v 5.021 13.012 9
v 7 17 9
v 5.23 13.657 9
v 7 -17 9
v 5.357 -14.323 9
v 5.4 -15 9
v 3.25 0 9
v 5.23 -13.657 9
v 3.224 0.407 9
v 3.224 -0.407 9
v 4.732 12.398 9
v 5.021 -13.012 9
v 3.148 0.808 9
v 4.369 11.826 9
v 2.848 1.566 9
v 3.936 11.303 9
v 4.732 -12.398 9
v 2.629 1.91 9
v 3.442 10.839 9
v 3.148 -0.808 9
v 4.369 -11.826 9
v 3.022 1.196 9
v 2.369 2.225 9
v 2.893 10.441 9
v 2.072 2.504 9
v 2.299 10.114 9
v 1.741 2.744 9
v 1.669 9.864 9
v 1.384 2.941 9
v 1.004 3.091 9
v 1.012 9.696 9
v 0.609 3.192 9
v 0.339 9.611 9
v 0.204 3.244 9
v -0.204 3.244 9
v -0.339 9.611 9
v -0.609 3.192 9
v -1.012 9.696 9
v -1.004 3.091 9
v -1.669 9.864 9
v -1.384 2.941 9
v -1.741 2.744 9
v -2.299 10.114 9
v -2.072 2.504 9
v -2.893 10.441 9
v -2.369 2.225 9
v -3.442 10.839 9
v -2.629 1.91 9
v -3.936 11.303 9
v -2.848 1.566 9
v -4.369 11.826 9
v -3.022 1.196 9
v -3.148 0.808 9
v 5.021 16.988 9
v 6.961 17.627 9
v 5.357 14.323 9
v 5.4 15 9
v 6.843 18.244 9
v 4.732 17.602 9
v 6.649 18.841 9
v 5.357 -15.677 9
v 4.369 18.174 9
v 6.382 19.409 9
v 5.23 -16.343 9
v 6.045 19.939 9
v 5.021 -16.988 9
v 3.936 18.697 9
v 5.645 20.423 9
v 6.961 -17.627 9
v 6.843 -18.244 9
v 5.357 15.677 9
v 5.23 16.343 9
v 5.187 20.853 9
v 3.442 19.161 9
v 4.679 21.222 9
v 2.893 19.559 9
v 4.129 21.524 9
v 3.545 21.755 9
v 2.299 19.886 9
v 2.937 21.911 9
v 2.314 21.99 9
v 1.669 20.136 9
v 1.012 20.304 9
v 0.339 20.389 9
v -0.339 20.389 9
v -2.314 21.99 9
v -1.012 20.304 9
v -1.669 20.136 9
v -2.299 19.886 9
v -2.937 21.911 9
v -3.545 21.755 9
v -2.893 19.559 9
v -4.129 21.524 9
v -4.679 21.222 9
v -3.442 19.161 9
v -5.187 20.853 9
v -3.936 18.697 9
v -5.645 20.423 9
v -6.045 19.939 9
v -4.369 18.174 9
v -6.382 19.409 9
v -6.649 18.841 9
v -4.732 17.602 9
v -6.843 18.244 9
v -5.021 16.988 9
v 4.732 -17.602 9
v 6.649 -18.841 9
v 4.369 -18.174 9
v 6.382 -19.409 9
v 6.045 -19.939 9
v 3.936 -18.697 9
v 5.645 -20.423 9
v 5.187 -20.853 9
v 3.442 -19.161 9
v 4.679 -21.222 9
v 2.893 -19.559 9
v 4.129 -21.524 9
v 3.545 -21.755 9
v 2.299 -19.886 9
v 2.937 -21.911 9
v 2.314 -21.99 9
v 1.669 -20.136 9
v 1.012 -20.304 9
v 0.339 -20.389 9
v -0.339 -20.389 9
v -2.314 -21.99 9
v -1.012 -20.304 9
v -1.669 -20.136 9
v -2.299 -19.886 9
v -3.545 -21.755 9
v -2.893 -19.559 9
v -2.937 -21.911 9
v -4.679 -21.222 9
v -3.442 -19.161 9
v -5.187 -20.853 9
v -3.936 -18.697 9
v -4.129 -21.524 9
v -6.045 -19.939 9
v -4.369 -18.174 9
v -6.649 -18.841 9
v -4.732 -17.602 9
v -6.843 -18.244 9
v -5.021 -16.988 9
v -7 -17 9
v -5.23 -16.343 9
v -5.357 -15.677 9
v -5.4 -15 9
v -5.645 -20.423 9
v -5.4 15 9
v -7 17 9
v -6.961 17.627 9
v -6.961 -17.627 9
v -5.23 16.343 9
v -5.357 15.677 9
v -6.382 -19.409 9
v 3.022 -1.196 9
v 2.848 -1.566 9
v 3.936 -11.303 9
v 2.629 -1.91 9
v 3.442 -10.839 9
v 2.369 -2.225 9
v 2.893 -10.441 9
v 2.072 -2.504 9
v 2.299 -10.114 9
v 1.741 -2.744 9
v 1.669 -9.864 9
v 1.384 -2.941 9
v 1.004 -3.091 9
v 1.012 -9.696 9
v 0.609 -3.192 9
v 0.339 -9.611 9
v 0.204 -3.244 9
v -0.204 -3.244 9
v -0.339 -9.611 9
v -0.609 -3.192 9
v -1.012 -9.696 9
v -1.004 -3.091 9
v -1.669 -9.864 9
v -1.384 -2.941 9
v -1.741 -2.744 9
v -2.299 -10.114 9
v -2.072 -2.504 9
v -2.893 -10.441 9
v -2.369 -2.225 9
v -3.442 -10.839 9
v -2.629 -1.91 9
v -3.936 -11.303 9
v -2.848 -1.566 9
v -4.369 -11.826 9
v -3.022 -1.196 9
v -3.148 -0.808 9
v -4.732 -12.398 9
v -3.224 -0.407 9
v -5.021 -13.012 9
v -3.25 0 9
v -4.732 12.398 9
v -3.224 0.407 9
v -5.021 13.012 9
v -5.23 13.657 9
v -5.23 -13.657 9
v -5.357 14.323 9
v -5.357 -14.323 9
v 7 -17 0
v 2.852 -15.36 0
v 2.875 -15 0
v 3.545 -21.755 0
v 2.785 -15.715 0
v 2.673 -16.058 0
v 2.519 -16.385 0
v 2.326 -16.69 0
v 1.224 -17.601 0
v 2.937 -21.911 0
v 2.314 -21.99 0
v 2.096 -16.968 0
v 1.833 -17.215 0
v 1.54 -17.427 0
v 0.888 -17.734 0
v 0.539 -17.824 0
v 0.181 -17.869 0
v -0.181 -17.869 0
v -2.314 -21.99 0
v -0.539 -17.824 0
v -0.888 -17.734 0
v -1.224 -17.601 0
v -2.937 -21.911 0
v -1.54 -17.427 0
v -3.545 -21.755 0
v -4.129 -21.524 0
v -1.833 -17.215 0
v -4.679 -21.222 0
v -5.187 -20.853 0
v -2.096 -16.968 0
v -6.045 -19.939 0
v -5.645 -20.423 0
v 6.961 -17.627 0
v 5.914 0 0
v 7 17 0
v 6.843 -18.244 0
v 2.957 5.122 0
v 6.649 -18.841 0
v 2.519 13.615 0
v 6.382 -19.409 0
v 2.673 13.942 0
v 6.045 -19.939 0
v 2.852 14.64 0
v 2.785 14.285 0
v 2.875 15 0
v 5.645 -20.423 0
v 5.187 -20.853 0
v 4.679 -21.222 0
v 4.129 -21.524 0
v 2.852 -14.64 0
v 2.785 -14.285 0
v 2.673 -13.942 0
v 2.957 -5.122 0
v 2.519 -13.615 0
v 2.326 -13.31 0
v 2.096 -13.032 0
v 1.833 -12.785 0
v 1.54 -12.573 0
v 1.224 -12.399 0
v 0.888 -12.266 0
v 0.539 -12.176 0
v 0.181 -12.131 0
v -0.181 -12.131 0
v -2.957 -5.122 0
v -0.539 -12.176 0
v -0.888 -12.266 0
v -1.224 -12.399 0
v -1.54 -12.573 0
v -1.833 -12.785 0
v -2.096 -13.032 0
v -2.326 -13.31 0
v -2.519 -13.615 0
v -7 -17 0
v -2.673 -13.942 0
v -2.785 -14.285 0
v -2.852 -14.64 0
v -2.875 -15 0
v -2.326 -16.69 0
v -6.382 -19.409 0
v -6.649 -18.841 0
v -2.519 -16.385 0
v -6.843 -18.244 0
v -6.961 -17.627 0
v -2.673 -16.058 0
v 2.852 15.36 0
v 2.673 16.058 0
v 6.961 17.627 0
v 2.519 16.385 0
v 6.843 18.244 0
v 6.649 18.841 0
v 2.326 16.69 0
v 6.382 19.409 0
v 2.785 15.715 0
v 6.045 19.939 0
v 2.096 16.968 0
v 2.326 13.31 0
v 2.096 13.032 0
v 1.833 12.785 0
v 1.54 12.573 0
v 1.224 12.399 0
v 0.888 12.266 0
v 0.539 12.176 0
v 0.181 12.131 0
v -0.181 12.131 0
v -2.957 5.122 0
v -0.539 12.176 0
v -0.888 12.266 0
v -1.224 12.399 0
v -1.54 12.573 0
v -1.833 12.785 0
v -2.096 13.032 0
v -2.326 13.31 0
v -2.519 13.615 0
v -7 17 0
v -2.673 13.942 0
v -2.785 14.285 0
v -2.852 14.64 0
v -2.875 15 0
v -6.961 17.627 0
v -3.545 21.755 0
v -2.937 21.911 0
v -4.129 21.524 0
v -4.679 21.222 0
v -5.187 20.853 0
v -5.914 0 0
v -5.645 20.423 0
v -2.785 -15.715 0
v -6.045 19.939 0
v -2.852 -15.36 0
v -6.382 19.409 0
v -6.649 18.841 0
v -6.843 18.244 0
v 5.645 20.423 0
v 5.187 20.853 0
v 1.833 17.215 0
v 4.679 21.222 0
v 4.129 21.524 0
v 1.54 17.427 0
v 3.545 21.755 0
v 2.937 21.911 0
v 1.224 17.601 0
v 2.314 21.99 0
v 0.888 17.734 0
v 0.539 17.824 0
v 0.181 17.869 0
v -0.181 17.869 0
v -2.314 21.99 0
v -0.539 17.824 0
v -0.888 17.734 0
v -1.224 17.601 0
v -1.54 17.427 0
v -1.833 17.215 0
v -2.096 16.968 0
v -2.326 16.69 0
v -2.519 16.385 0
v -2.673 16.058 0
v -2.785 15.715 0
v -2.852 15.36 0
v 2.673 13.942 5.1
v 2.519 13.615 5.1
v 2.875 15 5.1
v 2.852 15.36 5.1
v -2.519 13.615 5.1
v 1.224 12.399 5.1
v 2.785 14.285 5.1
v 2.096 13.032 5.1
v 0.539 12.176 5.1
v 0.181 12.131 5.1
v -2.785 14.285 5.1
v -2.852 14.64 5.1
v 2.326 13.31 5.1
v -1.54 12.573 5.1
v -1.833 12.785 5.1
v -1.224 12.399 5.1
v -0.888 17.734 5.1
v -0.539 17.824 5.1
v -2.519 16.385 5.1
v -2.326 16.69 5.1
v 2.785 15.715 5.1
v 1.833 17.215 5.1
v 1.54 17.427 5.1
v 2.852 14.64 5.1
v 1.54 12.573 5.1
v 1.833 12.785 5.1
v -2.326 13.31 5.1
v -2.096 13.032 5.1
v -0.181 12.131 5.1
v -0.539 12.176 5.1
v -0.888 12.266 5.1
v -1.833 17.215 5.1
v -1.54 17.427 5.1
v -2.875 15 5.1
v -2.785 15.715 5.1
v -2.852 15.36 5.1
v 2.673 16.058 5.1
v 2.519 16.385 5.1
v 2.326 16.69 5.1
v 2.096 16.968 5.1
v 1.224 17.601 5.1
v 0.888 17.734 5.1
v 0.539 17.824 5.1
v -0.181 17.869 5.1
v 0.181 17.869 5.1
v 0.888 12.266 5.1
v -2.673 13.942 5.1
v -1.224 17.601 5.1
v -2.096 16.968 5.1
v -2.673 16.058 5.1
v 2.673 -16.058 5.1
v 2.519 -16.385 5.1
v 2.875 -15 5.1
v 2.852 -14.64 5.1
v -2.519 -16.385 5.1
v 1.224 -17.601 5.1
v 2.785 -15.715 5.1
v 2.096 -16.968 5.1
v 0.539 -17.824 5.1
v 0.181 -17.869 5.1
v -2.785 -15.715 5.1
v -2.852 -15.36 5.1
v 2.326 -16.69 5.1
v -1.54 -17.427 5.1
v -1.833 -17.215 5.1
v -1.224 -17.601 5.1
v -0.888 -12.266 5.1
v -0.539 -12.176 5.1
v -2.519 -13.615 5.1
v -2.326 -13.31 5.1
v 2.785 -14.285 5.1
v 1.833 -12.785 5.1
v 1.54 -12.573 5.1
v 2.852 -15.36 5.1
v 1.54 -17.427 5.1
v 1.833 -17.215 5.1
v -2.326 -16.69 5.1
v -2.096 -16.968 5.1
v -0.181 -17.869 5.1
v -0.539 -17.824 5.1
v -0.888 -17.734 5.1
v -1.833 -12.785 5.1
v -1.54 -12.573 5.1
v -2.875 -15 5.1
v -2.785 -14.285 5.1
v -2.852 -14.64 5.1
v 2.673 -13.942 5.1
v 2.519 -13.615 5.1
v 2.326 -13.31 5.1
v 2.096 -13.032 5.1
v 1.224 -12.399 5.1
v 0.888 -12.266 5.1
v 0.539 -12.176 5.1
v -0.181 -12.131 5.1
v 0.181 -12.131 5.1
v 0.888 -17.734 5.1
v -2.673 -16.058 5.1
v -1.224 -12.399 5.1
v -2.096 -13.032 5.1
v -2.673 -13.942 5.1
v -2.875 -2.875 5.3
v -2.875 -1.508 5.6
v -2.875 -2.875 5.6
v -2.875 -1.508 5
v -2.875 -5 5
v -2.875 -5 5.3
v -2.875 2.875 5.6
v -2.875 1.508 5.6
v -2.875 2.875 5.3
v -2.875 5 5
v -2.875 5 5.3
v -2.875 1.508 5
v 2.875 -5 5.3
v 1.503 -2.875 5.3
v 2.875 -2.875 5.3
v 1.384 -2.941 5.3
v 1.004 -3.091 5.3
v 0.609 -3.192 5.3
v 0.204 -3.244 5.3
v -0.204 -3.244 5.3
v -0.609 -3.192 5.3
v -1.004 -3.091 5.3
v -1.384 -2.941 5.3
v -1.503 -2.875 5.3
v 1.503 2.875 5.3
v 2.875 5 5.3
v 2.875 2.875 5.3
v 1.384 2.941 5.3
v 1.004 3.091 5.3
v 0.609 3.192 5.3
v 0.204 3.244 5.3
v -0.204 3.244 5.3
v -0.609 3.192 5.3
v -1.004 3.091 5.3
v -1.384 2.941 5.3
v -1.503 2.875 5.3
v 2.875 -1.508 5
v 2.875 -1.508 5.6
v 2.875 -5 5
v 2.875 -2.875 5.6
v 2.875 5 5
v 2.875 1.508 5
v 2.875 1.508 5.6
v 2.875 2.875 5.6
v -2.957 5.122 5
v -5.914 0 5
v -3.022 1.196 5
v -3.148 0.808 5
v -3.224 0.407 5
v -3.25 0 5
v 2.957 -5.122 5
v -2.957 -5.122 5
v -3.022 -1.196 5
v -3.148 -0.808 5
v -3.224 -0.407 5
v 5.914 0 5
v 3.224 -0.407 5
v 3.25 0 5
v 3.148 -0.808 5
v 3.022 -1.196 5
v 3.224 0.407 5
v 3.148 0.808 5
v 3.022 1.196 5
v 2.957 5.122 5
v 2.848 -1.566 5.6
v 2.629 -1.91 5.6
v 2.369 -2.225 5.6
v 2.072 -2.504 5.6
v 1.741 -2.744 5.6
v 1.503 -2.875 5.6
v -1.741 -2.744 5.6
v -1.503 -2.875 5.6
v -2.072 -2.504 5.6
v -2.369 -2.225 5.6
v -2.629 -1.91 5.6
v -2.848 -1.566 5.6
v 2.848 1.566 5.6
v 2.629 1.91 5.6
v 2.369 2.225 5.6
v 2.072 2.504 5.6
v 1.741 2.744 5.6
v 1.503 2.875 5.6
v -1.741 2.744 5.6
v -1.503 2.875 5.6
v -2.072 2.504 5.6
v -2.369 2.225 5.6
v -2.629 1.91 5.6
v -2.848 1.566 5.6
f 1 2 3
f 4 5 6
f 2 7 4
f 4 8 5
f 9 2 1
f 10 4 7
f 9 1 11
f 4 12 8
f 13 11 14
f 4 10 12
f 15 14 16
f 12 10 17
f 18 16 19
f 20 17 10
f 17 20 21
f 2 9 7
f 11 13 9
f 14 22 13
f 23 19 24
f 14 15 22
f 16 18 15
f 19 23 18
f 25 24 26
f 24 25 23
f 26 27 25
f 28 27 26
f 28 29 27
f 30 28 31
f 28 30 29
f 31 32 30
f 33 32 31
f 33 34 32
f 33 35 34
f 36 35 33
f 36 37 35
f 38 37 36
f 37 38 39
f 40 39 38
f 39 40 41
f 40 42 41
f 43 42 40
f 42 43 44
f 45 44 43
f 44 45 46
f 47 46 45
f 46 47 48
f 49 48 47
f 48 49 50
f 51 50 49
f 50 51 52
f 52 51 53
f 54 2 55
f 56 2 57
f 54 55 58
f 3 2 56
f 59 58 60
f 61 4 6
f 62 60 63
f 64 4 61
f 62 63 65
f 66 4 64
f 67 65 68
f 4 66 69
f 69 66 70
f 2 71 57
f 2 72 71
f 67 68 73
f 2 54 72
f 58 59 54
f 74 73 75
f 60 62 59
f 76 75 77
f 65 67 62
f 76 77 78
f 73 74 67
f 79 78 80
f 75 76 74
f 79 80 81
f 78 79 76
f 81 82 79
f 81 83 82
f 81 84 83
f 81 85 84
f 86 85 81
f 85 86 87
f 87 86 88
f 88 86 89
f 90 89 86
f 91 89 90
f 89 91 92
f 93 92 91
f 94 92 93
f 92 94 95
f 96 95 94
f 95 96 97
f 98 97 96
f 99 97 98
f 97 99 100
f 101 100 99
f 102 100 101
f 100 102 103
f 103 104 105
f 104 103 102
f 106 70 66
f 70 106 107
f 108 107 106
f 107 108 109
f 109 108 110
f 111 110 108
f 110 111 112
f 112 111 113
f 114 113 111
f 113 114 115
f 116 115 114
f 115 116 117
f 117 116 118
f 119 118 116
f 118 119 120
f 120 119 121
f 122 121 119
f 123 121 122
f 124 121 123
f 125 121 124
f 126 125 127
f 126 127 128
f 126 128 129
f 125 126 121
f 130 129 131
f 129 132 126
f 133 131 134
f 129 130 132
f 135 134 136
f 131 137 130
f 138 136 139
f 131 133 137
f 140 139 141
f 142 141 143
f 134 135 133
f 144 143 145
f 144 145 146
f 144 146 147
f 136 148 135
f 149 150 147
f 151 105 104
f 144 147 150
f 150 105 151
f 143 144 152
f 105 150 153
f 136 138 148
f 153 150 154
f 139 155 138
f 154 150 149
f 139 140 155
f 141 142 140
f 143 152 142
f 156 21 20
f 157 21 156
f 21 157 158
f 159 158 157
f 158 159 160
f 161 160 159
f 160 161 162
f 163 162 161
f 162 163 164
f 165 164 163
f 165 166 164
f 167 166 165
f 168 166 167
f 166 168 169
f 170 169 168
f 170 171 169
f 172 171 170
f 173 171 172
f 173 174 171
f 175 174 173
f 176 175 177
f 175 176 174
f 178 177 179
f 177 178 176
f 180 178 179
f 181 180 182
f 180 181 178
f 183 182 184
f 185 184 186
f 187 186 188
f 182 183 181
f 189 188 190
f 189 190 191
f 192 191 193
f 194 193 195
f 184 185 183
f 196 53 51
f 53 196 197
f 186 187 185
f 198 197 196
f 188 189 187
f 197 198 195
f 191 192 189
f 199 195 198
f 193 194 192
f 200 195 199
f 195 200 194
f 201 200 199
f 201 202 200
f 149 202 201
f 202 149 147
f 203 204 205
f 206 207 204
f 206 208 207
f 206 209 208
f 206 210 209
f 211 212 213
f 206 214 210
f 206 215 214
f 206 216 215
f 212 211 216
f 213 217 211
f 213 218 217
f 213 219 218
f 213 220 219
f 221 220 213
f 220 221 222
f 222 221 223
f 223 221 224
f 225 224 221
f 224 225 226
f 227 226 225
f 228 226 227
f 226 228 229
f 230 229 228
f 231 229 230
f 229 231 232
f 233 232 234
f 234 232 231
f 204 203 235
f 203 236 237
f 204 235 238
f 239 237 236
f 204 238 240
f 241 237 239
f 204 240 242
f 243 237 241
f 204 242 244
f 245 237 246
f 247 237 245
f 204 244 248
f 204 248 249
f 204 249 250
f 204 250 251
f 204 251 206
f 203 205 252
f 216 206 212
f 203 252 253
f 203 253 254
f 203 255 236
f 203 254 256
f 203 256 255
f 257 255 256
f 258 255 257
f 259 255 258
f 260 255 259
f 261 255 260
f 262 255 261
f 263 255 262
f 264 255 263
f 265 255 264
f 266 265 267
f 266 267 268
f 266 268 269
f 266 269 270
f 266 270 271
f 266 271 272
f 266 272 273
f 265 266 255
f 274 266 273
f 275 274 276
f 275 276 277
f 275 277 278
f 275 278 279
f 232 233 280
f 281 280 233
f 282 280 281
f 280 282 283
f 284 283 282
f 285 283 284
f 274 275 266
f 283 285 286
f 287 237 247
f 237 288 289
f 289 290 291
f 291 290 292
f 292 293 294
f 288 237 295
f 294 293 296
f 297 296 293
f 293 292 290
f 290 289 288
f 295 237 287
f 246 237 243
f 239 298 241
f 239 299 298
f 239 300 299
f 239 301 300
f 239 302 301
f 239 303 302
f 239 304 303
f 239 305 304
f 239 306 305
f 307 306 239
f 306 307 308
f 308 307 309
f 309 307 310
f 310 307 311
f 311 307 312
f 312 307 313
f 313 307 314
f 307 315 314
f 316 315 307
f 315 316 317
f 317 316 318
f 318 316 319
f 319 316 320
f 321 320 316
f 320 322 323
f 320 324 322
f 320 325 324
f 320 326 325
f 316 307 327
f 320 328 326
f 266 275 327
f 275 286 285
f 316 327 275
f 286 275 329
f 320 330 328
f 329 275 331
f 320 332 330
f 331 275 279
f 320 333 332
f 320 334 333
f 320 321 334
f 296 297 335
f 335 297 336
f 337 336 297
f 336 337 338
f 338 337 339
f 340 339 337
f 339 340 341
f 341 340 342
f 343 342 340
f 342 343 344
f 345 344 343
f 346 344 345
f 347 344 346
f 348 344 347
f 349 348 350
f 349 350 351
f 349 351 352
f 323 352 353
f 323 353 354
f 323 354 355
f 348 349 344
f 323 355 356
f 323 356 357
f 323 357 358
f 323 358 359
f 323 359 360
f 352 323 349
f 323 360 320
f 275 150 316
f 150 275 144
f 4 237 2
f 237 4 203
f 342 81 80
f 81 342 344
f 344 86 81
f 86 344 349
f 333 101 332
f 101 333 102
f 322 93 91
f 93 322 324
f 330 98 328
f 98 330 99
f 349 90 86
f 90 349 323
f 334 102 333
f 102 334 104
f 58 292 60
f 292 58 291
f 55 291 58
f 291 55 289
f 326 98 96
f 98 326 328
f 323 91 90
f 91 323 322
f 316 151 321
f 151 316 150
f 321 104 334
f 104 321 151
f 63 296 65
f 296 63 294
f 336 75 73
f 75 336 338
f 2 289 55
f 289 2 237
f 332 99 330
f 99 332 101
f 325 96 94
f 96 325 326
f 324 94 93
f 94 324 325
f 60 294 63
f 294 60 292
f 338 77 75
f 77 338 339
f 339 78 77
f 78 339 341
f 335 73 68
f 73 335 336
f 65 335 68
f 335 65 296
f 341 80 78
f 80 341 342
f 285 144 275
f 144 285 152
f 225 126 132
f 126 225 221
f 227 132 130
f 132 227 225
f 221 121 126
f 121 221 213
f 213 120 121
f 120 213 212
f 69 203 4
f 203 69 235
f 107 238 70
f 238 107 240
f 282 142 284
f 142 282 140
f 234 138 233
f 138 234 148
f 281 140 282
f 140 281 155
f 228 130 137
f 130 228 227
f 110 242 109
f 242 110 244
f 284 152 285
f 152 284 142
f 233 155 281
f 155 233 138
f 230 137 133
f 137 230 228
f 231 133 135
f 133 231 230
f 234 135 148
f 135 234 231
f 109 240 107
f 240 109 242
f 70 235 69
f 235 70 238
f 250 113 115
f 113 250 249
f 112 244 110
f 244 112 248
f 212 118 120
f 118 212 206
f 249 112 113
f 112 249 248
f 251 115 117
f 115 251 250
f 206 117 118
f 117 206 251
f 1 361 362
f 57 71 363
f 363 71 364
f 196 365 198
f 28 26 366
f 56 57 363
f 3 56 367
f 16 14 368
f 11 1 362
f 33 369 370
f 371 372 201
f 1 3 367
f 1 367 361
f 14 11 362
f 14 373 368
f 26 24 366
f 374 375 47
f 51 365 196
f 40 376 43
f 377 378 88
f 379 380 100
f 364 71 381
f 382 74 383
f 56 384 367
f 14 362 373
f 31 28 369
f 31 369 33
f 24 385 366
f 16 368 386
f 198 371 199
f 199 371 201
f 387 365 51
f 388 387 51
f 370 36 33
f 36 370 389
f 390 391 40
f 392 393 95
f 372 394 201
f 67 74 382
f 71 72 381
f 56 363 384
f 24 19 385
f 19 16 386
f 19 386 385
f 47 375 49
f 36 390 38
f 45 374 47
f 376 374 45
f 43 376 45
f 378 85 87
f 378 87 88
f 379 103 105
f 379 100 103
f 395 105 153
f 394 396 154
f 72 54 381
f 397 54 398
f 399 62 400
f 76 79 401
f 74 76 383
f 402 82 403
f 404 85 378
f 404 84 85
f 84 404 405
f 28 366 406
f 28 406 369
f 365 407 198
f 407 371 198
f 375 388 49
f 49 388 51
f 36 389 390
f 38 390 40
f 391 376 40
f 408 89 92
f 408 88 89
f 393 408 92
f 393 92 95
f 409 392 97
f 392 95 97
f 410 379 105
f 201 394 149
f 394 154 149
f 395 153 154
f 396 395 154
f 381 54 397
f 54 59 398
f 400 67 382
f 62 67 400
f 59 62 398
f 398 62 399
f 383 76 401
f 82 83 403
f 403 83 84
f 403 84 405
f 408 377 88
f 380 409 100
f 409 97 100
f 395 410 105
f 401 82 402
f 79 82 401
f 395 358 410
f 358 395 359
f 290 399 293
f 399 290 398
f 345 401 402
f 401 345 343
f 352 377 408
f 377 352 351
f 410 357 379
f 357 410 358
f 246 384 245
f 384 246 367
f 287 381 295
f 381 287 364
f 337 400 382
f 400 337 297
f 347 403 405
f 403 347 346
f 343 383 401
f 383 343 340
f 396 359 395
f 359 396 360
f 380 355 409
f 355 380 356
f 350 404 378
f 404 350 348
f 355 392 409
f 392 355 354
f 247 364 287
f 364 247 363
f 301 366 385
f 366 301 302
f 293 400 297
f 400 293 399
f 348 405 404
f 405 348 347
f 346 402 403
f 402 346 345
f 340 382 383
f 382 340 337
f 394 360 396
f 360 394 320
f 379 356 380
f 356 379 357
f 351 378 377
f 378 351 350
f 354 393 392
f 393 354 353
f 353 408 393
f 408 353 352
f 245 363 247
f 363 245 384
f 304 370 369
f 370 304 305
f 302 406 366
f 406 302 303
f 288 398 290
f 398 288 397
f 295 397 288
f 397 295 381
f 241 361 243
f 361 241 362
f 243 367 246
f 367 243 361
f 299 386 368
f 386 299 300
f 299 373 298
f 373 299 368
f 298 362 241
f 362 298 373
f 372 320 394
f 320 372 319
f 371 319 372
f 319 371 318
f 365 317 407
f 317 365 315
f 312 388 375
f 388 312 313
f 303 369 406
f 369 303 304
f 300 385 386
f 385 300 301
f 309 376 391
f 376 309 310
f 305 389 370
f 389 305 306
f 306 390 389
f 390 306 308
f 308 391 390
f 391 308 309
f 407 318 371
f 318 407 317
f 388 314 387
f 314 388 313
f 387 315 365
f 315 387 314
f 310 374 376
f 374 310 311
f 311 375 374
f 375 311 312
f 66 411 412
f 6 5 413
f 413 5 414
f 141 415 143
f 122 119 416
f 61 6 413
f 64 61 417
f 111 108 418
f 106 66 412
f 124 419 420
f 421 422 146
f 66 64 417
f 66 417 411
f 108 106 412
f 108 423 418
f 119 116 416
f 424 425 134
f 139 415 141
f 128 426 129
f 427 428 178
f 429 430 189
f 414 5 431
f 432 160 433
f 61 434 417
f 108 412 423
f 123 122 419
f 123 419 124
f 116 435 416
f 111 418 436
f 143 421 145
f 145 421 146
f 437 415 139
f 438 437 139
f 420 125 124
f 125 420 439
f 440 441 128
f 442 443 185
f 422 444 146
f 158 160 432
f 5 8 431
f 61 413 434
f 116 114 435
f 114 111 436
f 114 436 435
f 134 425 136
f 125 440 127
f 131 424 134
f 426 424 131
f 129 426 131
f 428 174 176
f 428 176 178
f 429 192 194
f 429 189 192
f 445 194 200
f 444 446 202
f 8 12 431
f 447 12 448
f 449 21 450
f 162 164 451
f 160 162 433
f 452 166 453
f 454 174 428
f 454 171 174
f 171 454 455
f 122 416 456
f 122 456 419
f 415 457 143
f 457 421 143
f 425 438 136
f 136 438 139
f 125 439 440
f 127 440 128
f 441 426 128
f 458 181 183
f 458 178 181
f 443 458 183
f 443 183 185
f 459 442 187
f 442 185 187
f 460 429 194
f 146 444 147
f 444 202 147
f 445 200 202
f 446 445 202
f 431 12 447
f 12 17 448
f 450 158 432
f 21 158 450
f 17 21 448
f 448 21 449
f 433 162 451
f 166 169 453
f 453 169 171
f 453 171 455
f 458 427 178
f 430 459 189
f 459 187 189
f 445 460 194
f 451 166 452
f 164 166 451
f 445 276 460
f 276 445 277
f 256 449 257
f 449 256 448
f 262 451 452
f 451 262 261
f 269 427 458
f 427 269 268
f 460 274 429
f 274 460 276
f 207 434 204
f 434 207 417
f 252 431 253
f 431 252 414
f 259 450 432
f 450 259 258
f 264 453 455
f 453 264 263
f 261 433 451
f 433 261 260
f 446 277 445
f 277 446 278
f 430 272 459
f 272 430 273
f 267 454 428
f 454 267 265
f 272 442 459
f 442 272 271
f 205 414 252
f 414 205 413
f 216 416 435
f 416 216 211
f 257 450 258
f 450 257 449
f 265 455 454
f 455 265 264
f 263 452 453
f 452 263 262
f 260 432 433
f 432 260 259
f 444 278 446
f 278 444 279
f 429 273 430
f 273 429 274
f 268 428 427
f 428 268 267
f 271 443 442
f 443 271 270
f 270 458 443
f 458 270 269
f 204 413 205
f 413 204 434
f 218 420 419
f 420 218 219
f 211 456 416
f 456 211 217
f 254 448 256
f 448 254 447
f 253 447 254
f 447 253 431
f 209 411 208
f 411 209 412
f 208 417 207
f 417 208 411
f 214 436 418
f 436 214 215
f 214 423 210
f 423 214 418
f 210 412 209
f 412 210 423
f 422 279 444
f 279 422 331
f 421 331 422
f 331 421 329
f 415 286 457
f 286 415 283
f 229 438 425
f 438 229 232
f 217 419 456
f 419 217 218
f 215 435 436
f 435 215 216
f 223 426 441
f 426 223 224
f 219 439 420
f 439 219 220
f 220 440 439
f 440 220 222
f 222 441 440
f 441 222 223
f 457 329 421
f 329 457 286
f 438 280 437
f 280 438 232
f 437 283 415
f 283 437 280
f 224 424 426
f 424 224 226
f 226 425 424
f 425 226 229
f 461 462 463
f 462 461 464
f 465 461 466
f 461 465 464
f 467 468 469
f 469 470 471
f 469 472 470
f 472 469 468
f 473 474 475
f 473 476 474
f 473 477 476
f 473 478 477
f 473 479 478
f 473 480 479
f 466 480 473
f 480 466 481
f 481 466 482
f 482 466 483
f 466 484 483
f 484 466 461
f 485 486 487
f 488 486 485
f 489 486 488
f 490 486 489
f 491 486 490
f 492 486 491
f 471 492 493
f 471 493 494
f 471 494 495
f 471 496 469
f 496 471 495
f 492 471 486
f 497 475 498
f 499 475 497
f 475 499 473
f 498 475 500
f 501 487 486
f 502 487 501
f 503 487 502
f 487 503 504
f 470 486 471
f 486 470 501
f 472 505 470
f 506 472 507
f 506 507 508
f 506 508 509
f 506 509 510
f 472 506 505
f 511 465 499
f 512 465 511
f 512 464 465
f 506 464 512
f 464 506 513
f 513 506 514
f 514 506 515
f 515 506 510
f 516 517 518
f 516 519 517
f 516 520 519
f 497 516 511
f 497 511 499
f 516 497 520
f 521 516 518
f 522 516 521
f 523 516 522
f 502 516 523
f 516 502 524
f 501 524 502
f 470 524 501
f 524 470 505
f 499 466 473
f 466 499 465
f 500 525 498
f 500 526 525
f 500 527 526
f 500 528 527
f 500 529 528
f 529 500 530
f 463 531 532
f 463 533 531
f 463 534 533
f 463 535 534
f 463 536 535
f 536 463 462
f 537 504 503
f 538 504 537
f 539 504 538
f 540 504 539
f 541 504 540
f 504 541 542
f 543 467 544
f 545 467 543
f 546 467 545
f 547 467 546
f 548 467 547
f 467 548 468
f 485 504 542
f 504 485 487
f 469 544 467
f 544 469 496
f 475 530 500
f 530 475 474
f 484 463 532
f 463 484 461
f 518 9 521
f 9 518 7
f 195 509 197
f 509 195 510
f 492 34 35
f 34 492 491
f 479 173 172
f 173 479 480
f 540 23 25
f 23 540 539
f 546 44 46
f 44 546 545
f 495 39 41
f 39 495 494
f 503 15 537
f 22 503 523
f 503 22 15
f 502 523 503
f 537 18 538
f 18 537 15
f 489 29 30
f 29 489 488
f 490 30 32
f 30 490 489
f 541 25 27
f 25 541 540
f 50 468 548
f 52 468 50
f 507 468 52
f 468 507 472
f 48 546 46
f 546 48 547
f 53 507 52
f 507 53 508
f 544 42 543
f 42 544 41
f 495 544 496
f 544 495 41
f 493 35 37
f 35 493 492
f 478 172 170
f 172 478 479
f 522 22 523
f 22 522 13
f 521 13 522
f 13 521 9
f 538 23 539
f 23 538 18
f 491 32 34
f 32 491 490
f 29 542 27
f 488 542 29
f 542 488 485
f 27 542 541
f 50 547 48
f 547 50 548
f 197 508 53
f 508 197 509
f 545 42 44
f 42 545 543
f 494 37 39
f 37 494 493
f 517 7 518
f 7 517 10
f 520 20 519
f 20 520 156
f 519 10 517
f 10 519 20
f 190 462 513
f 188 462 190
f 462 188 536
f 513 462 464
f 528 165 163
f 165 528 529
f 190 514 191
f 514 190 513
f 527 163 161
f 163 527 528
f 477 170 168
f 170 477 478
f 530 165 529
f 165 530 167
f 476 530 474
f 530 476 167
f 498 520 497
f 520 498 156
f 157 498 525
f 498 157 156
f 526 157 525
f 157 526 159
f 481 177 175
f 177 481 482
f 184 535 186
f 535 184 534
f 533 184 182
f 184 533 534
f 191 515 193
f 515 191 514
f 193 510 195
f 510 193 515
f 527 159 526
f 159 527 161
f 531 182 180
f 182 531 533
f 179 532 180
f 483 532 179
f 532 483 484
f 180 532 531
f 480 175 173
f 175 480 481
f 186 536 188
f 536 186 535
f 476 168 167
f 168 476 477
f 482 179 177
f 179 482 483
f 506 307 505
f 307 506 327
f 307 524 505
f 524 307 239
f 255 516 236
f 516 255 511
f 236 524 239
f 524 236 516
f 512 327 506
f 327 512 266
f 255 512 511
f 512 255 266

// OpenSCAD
$fn = 50;


difference() {
	union() {
		cylinder(h = 9, r = 7.0000000000);
		translate(v = [0.0000000000, 7.5000000000, 0]) {
			hull() {
				translate(v = [-2.0000000000, 9.5000000000, 0]) {
					cylinder(h = 9, r = 5);
				}
				translate(v = [2.0000000000, 9.5000000000, 0]) {
					cylinder(h = 9, r = 5);
				}
				translate(v = [-2.0000000000, -9.5000000000, 0]) {
					cylinder(h = 9, r = 5);
				}
				translate(v = [2.0000000000, -9.5000000000, 0]) {
					cylinder(h = 9, r = 5);
				}
			}
		}
		translate(v = [0.0000000000, 7.5000000000, 0]) {
			hull() {
				translate(v = [-2.0000000000, 9.5000000000, 0]) {
					cylinder(h = 9, r = 5);
				}
				translate(v = [2.0000000000, 9.5000000000, 0]) {
					cylinder(h = 9, r = 5);
				}
				translate(v = [-2.0000000000, -9.5000000000, 0]) {
					cylinder(h = 9, r = 5);
				}
				translate(v = [2.0000000000, -9.5000000000, 0]) {
					cylinder(h = 9, r = 5);
				}
			}
		}
		translate(v = [0.0000000000, -7.5000000000, 0]) {
			hull() {
				translate(v = [-2.0000000000, 9.5000000000, 0]) {
					cylinder(h = 9, r = 5);
				}
				translate(v = [2.0000000000, 9.5000000000, 0]) {
					cylinder(h = 9, r = 5);
				}
				translate(v = [-2.0000000000, -9.5000000000, 0]) {
					cylinder(h = 9, r = 5);
				}
				translate(v = [2.0000000000, -9.5000000000, 0]) {
					cylinder(h = 9, r = 5);
				}
			}
		}
		translate(v = [0.0000000000, -7.5000000000, 0]) {
			hull() {
				translate(v = [-2.0000000000, 9.5000000000, 0]) {
					cylinder(h = 9, r = 5);
				}
				translate(v = [2.0000000000, 9.5000000000, 0]) {
					cylinder(h = 9, r = 5);
				}
				translate(v = [-2.0000000000, -9.5000000000, 0]) {
					cylinder(h = 9, r = 5);
				}
				translate(v = [2.0000000000, -9.5000000000, 0]) {
					cylinder(h = 9, r = 5);
				}
			}
		}
	}
	union() {
		translate(v = [0.0000000000, 15.0000000000, 9]) {
			rotate(a = [0, 0, 0]) {
				difference() {
					union() {
						#translate(v = [0, 0, -9.0000000000]) {
							cylinder(h = 9, r = 2.6000000000);
						}
						#translate(v = [0, 0, -3.9000000000]) {
							cylinder(h = 3.9000000000, r1 = 2.8750000000, r2 = 5.4000000000);
						}
						#translate(v = [0, 0, -9.0000000000]) {
							cylinder(h = 9, r = 2.8750000000);
						}
						#translate(v = [0, 0, -9.0000000000]) {
							cylinder(h = 9, r = 2.6000000000);
						}
					}
					union();
				}
			}
		}
		translate(v = [0.0000000000, 15.0000000000, 9]) {
			rotate(a = [0, 0, 0]) {
				difference() {
					union() {
						#translate(v = [0, 0, -9.0000000000]) {
							cylinder(h = 9, r = 2.6000000000);
						}
						#translate(v = [0, 0, -3.9000000000]) {
							cylinder(h = 3.9000000000, r1 = 2.8750000000, r2 = 5.4000000000);
						}
						#translate(v = [0, 0, -9.0000000000]) {
							cylinder(h = 9, r = 2.8750000000);
						}
						#translate(v = [0, 0, -9.0000000000]) {
							cylinder(h = 9, r = 2.6000000000);
						}
					}
					union();
				}
			}
		}
		translate(v = [0.0000000000, -15.0000000000, 9]) {
			rotate(a = [0, 0, 0]) {
				difference() {
					union() {
						#translate(v = [0, 0, -9.0000000000]) {
							cylinder(h = 9, r = 2.6000000000);
						}
						#translate(v = [0, 0, -3.9000000000]) {
							cylinder(h = 3.9000000000, r1 = 2.8750000000, r2 = 5.4000000000);
						}
						#translate(v = [0, 0, -9.0000000000]) {
							cylinder(h = 9, r = 2.8750000000);
						}
						#translate(v = [0, 0, -9.0000000000]) {
							cylinder(h = 9, r = 2.6000000000);
						}
					}
					union();
				}
			}
		}
		translate(v = [0.0000000000, -15.0000000000, 9]) {
			rotate(a = [0, 0, 0]) {
				difference() {
					union() {
						#translate(v = [0, 0, -9.0000000000]) {
							cylinder(h = 9, r = 2.6000000000);
						}
						#translate(v = [0, 0, -3.9000000000]) {
							cylinder(h = 3.9000000000, r1 = 2.8750000000, r2 = 5.4000000000);
						}
						#translate(v = [0, 0, -9.0000000000]) {
							cylinder(h = 9, r = 2.8750000000);
						}
						#translate(v = [0, 0, -9.0000000000]) {
							cylinder(h = 9, r = 2.6000000000);
						}
					}
					union();
				}
			}
		}
		translate(v = [0.0000000000, 0.0000000000, 0]) {
			rotate(a = [0, 0, 0]) {
				difference() {
					union() {
						#translate(v = [-2.8750000000, -5.0000000000, -0.3000000000]) {
							cube(size = [5.7500000000, 10, 0.3000000000]);
						}
						#translate(v = [-2.8750000000, -2.8750000000, -0.6000000000]) {
							cube(size = [5.7500000000, 5.7500000000, 0.3000000000]);
						}
						#translate(v = [-2.8750000000, -5.0000000000, 5]) {
							cube(size = [5.7500000000, 10, 0.3000000000]);
						}
						#translate(v = [-2.8750000000, -2.8750000000, 5.3000000000]) {
							cube(size = [5.7500000000, 5.7500000000, 0.3000000000]);
						}
						#translate(v = [0, 0, -100.0000000000]) {
							cylinder(h = 200, r = 3.2500000000);
						}
						#linear_extrude(height = 5) {
							polygon(points = [[5.9142500000, 0.0000000000], [2.9571250000, 5.1218907443], [-2.9571250000, 5.1218907443], [-5.9142500000, 0.0000000000], [-2.9571250000, -5.1218907443], [2.9571250000, -5.1218907443]]);
						}
						#translate(v = [-2.8750000000, -5.0000000000, -0.3000000000]) {
							cube(size = [5.7500000000, 10, 0.3000000000]);
						}
						#translate(v = [-2.8750000000, -2.8750000000, -0.6000000000]) {
							cube(size = [5.7500000000, 5.7500000000, 0.3000000000]);
						}
						#translate(v = [-2.8750000000, -5.0000000000, 5]) {
							cube(size = [5.7500000000, 10, 0.3000000000]);
						}
						#translate(v = [-2.8750000000, -2.8750000000, 5.3000000000]) {
							cube(size = [5.7500000000, 5.7500000000, 0.3000000000]);
						}
						#translate(v = [0, 0, -100.0000000000]) {
							cylinder(h = 200, r = 3.2500000000);
						}
						#translate(v = [-2.8750000000, -5.0000000000, -0.3000000000]) {
							cube(size = [5.7500000000, 10, 0.3000000000]);
						}
						#translate(v = [-2.8750000000, -2.8750000000, -0.6000000000]) {
							cube(size = [5.7500000000, 5.7500000000, 0.3000000000]);
						}
						#translate(v = [-2.8750000000, -5.0000000000, 5]) {
							cube(size = [5.7500000000, 10, 0.3000000000]);
						}
						#translate(v = [-2.8750000000, -2.8750000000, 5.3000000000]) {
							cube(size = [5.7500000000, 5.7500000000, 0.3000000000]);
						}
						#translate(v = [0, 0, -100.0000000000]) {
							cylinder(h = 200, r = 3.2500000000);
						}
					}
					union();
				}
			}
		}
		translate(v = [0, 0, -100]) {
			cylinder(h = 200, r = 3.2500000000);
		}
		translate(v = [0, 0, -100]) {
			cylinder(h = 200, r = 1.8000000000);
		}
	}
}
